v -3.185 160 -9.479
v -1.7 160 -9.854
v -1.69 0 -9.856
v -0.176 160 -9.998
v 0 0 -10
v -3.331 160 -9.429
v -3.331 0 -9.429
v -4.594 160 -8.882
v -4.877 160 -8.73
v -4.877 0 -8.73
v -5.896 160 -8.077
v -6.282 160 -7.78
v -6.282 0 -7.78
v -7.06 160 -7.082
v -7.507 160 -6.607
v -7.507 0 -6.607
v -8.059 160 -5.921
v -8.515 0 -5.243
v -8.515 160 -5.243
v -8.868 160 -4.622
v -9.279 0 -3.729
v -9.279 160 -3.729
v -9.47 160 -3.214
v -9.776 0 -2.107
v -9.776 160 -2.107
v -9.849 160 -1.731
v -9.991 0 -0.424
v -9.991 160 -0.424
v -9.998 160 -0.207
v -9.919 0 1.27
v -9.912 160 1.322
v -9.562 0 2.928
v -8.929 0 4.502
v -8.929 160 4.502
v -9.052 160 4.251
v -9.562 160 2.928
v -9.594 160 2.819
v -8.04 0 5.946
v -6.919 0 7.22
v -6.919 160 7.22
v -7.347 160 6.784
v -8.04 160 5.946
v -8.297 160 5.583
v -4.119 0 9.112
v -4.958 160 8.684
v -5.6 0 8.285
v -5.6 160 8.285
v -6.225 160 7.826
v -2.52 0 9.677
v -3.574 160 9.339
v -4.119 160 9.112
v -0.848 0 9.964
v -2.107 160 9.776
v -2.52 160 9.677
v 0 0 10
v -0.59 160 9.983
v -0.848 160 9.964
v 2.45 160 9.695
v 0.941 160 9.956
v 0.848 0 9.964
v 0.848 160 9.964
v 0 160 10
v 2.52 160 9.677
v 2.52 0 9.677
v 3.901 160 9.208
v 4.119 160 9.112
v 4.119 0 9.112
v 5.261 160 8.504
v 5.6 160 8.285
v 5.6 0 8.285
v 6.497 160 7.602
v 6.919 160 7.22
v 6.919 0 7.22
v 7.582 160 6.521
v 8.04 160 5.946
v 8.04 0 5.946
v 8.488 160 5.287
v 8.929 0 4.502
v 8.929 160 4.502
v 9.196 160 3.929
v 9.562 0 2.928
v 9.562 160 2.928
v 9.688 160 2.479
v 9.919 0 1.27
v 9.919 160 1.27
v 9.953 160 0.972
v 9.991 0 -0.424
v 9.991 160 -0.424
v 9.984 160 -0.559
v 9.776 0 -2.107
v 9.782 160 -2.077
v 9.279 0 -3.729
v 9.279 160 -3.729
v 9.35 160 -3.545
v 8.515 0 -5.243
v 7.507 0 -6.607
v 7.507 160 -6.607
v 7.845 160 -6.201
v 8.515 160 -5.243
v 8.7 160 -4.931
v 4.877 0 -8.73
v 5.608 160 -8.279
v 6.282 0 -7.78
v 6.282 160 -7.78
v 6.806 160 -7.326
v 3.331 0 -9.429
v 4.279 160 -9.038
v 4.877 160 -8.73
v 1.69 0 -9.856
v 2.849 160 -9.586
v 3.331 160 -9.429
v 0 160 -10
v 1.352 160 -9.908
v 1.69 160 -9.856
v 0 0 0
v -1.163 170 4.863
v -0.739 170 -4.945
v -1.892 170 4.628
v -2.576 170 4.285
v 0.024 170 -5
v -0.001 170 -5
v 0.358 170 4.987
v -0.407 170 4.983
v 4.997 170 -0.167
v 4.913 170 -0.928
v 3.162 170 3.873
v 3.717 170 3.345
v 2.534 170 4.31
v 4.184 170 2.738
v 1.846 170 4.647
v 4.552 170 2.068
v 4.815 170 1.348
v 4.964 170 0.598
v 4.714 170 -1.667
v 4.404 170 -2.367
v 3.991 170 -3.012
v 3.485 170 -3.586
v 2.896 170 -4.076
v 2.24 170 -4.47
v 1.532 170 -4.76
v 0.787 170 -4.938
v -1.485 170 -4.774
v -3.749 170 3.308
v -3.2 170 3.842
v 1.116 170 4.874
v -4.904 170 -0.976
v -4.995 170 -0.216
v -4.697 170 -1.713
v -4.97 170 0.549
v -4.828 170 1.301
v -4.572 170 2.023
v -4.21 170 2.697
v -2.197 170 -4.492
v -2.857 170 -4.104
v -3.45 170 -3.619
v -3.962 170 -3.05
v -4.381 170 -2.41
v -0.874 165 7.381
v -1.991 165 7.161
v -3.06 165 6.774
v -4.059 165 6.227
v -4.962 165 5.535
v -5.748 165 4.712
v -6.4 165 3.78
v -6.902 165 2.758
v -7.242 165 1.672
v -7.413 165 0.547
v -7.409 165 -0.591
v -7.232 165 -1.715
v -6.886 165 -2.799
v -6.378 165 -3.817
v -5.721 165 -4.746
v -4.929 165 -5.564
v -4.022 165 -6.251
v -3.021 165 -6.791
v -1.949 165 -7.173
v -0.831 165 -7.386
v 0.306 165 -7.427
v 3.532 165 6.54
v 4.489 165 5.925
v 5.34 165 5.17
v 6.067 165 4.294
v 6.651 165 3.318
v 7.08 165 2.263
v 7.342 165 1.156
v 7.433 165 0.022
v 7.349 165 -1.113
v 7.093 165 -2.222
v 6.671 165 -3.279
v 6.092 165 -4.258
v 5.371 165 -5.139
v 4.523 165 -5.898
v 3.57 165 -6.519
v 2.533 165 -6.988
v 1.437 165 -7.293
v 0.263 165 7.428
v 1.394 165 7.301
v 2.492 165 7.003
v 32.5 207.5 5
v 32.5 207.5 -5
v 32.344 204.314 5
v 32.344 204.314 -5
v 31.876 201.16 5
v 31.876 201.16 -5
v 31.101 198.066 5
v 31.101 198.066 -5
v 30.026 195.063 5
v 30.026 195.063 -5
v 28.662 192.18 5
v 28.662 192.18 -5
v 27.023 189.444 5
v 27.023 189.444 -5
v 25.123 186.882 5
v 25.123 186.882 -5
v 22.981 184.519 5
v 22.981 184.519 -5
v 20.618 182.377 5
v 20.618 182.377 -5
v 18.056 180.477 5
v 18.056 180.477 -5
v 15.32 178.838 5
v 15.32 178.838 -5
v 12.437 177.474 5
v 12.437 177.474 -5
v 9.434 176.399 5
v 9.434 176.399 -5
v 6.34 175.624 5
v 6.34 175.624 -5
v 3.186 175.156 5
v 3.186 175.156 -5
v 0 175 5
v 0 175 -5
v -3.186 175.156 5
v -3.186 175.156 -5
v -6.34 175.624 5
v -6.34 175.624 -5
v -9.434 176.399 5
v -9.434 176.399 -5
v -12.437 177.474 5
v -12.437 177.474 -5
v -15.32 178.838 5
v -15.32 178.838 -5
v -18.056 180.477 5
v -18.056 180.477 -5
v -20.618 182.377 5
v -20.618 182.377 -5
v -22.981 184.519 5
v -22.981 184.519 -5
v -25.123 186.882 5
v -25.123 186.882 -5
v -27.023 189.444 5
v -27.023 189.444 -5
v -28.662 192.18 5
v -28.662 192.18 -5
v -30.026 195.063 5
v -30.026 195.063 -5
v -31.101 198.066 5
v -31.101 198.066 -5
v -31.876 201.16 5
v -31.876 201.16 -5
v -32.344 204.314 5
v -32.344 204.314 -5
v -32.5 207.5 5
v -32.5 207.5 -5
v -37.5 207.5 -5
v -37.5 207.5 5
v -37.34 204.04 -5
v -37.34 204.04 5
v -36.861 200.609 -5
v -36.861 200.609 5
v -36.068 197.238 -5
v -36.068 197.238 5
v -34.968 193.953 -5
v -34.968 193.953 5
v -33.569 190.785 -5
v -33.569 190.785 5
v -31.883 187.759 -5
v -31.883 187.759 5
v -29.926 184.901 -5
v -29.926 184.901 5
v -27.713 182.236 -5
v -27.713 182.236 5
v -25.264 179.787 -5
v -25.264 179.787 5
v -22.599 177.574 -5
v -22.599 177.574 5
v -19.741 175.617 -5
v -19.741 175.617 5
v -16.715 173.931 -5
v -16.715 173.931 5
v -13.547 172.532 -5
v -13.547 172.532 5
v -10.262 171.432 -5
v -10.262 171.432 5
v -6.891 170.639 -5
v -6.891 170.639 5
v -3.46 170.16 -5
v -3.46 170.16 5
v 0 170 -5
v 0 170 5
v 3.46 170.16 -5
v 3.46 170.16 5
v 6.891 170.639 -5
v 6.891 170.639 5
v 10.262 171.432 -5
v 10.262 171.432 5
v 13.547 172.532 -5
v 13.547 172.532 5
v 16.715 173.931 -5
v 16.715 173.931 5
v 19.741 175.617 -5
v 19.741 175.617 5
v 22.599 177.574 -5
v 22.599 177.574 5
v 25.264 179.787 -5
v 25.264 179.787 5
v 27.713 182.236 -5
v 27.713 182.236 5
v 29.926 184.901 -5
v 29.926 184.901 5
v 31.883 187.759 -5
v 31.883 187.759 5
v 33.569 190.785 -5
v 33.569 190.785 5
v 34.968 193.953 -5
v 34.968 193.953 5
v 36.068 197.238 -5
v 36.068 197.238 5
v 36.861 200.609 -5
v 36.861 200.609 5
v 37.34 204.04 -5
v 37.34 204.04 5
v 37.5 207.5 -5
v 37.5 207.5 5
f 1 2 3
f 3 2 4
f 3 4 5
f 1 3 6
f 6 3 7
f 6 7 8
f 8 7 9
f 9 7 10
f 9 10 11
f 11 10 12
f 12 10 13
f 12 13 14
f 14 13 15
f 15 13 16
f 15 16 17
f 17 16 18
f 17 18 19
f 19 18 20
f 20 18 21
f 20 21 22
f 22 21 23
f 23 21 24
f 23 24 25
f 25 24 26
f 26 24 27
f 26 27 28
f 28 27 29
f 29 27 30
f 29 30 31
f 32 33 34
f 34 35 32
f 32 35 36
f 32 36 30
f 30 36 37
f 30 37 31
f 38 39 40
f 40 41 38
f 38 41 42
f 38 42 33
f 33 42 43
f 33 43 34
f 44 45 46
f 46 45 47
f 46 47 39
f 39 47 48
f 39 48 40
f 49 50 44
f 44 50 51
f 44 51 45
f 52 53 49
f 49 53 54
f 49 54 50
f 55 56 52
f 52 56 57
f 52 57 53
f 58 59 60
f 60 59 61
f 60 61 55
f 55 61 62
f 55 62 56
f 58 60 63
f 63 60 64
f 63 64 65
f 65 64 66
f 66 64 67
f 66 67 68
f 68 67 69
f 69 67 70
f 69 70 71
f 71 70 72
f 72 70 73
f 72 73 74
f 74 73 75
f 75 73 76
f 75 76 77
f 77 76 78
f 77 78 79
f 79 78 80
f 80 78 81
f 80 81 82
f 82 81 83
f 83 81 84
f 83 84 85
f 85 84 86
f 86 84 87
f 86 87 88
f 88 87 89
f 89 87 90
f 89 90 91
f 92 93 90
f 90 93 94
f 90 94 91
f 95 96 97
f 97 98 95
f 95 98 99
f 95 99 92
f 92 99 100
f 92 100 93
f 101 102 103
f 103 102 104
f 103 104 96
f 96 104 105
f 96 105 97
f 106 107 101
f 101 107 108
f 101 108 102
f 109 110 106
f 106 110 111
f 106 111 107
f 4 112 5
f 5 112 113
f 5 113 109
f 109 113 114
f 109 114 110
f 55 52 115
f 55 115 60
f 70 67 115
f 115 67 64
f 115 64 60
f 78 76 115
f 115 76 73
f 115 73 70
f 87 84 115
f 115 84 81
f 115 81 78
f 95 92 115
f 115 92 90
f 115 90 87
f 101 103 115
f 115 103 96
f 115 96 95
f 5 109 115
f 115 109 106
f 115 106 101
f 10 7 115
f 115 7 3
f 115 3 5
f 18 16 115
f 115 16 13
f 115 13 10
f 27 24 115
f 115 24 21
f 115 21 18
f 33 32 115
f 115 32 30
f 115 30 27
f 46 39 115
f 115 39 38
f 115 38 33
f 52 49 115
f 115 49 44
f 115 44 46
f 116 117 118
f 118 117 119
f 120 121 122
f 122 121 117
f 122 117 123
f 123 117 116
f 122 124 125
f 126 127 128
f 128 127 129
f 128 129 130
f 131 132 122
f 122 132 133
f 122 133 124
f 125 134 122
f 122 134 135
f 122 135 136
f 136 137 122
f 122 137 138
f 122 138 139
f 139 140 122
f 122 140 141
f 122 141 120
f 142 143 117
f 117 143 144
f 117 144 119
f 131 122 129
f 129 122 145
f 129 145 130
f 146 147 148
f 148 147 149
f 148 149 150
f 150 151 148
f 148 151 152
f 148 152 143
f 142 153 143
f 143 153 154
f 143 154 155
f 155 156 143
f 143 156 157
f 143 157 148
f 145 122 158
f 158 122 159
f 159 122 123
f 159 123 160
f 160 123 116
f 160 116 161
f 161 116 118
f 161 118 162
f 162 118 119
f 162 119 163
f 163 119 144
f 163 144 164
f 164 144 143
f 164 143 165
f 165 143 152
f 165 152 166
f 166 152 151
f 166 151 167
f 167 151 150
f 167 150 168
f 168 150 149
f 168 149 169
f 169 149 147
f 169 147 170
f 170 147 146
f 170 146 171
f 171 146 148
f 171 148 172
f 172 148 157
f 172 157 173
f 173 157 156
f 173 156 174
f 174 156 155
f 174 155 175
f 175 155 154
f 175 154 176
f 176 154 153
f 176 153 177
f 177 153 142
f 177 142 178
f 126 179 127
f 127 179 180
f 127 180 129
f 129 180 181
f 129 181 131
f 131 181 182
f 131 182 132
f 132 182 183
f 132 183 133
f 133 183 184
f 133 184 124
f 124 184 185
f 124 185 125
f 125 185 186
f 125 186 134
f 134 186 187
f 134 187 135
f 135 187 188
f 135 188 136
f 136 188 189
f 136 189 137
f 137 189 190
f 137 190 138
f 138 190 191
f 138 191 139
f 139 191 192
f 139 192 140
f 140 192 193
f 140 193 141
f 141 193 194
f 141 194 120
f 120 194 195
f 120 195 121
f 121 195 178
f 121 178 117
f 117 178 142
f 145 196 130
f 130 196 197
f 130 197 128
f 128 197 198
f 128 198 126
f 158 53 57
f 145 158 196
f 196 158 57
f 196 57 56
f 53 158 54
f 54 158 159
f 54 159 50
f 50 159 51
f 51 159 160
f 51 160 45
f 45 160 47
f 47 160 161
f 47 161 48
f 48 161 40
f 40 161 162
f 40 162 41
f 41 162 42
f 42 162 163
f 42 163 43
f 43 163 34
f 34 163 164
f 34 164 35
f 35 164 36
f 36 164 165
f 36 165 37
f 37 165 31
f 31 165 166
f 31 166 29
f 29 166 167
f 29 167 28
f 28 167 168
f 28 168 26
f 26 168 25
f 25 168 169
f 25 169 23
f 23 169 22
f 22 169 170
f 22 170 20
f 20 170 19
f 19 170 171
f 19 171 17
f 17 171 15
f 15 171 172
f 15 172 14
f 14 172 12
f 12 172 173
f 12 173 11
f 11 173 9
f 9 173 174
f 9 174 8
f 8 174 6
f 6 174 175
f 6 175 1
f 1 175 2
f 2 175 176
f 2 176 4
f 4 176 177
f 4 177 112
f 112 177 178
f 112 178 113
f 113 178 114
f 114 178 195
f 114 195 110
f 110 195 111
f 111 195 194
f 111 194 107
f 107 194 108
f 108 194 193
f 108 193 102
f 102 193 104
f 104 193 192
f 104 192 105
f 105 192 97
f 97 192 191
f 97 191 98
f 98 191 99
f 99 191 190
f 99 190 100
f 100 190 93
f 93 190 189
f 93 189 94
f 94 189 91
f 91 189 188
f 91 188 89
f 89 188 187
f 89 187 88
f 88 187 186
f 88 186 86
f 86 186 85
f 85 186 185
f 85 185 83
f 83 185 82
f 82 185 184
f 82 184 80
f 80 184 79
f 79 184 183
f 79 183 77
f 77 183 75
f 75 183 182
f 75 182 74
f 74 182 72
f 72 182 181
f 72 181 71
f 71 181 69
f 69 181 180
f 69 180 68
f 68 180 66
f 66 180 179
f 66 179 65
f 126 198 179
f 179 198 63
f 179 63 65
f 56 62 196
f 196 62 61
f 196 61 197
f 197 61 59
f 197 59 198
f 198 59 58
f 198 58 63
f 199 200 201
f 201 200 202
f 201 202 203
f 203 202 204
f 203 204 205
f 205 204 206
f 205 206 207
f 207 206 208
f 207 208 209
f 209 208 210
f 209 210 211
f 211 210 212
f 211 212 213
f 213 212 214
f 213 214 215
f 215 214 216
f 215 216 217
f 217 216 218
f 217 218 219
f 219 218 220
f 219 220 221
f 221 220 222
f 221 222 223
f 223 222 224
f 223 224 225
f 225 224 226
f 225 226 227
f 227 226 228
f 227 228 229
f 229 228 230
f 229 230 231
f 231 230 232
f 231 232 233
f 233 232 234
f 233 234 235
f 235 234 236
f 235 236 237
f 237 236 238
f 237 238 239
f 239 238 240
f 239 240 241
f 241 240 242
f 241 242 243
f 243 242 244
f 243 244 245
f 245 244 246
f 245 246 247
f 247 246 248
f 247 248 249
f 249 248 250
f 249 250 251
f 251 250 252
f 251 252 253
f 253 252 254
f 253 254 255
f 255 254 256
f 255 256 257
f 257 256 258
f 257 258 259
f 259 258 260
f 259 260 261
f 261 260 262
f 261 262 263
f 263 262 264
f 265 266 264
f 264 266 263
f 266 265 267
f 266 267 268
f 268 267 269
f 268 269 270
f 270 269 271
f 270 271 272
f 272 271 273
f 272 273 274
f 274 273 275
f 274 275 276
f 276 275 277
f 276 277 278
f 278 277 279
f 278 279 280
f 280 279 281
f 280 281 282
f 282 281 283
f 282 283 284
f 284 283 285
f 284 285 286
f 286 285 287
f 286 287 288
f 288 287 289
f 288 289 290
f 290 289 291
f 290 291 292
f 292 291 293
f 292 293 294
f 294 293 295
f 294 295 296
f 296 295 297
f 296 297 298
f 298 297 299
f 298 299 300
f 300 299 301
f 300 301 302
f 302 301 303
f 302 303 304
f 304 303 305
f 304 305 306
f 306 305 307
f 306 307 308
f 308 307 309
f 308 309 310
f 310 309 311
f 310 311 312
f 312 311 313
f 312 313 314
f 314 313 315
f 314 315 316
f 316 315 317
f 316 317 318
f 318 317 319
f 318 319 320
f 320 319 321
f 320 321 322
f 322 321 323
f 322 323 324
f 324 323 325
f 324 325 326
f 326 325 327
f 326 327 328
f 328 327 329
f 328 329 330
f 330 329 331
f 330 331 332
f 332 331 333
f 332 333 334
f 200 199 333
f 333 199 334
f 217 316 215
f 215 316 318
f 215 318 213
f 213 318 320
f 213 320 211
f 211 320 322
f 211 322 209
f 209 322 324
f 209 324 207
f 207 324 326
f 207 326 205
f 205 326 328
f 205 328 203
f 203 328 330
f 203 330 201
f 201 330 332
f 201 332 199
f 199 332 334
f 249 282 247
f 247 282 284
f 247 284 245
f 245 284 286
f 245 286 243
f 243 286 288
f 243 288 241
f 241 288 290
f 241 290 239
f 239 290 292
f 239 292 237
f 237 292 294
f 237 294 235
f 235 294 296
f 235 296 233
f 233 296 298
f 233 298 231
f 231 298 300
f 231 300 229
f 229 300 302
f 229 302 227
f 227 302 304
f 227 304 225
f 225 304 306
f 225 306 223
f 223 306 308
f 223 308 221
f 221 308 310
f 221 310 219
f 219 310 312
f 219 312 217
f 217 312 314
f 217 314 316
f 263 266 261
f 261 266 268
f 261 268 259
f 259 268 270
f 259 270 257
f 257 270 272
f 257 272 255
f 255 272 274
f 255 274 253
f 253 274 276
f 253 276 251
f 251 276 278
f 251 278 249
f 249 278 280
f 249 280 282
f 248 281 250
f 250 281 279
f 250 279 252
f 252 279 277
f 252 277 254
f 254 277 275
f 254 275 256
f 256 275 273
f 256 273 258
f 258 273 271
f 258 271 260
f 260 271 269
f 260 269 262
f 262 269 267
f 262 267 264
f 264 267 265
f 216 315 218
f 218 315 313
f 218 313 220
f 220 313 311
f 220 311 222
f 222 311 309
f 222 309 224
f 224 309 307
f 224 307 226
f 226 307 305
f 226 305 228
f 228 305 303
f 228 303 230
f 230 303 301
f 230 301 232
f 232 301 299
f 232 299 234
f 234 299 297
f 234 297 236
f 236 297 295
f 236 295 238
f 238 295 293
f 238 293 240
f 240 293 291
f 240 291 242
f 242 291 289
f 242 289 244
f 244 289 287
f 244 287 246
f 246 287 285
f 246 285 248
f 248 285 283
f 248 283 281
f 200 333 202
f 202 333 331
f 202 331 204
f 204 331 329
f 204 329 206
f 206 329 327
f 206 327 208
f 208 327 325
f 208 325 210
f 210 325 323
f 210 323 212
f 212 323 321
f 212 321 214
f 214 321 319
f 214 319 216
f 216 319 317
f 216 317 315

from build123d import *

# Parameters (mm, degrees)
SKETCH_1_R           = 10
EXTRUDE_1_DEPTH      = 160
EXTRUDE_2_DEPTH      = 5
EXTRUDE_2_DEPTH_BACK = 5


with BuildPart() as part:
    # Эскиз1 → Бобышка-Вытянуть1 (new body)
    with BuildSketch(Plane(origin=(0, 0, 0), x_dir=(1, 0, 0), z_dir=(0, 1, 0))):
        with Locations(Location((0, 0, 0), (0, 0, 270))):
            Circle(SKETCH_1_R)
    extrude(amount=EXTRUDE_1_DEPTH)

    # По сечениям1: read off the stored shape, not the designer's step
    # По сечениям1: loft between two sections, ruled curve by curve
    loft_1_from = [
        Edge.make_bspline([(0.941083133, 160, 9.955619646), (20.852322425, 160, 8.07345338), (18.970156159, 160, -11.837785912), (-0.941083133, 160, -9.955619646), (-20.852322425, 160, -8.07345338), (-18.970156159, 160, 11.837785912), (0.941083133, 160, 9.955619646)], [0, 0, 0, 0, 0.5, 0.5, 0.5, 1, 1, 1, 1], 3, [1, 0.333333333, 0.333333333, 1, 0.333333333, 0.333333333, 1]),
    ]
    loft_1_to = [
        Edge.make_bspline([(1.846463267, 170, 4.646565765), (11.139594796, 170, 0.953639232), (7.446668263, 170, -8.339492298), (-1.846463267, 170, -4.646565765), (-11.139594796, 170, -0.953639232), (-7.446668263, 170, 8.339492298), (1.846463267, 170, 4.646565765)], [0, 0, 0, 0, 0.5, 0.5, 0.5, 1, 1, 1, 1], 3, [1, 0.333333333, 0.333333333, 1, 0.333333333, 0.333333333, 1]),
    ]
    loft_1 = Solid(Shell([*[Face.make_surface_from_curves(loft_1_from[k], loft_1_to[k]) for k in range(1)], Face(Wire(loft_1_from)), Face(Wire(loft_1_to))]))
    add(loft_1)


with BuildPart() as body_2:
    # Эскиз8 → Бобышка-Вытянуть2 (new, two sides: drawn at the far end of the back side and taken through both)
    with BuildSketch(Plane.XY.offset(-EXTRUDE_2_DEPTH_BACK)):
        with BuildLine():
            Line((-37.5, 207.5), (-32.5, 207.5))
            ThreePointArc((-32.5, 207.5), (0, 175), (32.5, 207.5))
            Line((32.5, 207.5), (37.5, 207.5))
            ThreePointArc((37.5, 207.5), (0, 170), (-37.5, 207.5))
        make_face()
    extrude(amount=EXTRUDE_2_DEPTH + EXTRUDE_2_DEPTH_BACK)


solid = Compound([part.part, body_2.part])
